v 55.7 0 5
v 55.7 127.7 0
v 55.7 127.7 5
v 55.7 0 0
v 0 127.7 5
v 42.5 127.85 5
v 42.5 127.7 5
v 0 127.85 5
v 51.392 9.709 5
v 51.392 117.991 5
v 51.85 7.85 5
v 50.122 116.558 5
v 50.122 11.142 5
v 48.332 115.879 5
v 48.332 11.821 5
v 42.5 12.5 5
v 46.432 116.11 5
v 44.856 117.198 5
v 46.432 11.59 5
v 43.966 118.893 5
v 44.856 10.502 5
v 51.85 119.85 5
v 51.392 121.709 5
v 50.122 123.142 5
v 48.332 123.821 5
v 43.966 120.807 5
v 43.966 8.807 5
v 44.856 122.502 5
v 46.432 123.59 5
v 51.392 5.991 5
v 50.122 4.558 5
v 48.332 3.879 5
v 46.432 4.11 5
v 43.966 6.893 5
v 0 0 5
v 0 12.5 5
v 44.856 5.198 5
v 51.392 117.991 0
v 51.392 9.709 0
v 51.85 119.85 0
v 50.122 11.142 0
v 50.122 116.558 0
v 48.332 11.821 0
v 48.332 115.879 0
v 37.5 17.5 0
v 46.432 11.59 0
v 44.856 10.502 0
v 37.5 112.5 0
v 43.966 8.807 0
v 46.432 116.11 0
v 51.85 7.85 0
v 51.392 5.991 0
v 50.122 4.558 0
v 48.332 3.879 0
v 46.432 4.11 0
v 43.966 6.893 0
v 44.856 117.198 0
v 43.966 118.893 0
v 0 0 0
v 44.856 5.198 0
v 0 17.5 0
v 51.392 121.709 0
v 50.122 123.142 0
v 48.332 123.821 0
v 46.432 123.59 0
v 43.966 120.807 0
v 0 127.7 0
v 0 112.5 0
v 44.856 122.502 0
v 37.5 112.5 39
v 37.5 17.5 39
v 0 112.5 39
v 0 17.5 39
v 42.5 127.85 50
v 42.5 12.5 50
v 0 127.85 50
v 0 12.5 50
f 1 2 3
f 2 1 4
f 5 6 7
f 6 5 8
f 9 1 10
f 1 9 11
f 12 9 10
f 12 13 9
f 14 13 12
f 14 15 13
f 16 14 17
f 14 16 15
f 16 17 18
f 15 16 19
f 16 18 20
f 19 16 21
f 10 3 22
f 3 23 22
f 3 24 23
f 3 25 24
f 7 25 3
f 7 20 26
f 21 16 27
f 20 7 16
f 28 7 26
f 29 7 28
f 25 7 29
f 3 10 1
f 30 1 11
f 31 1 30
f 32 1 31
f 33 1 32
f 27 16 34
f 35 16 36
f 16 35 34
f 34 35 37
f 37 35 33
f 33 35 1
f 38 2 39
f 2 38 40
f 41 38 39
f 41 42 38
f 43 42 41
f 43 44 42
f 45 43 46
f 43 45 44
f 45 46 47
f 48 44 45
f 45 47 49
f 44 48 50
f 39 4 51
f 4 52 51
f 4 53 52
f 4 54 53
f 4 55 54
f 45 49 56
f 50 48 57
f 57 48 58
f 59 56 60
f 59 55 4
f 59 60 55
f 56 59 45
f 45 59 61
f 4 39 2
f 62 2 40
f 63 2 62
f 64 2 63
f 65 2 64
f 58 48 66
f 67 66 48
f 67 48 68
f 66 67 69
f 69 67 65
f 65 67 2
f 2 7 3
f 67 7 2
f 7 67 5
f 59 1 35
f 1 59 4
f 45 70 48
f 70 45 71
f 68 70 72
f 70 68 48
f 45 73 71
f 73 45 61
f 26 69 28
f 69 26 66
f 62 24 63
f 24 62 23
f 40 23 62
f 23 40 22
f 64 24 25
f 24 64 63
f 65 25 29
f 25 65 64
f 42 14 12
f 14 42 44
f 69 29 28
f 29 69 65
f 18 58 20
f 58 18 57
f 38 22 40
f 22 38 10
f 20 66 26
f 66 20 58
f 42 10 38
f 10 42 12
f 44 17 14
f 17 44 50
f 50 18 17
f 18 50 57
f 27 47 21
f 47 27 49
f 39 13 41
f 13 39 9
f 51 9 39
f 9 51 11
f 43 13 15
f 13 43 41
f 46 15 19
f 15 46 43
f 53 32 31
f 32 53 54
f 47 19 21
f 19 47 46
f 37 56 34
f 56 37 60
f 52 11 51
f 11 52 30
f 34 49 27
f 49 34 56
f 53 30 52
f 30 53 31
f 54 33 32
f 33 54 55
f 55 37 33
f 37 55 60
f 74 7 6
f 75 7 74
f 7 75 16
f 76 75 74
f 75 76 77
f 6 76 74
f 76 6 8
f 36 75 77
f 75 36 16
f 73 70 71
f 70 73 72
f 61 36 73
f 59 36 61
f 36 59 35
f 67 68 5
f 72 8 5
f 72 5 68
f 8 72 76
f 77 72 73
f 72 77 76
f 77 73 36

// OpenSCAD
// file: 64x32 - 4mm pitch.scad
// Base plate
module case() {
    difference() {
        difference() {
            cube([255.70, 127.70, 5]);
            translate([17.5, 17.5, -1])
            cube([220, 95, 7]);
        }
        // Screw holes
        translate([7.85, 7.85, -1])
        cylinder(7, 4, 4);
        translate([7.85, 119.85, -1])
        cylinder(7, 4, 4);
        translate([127.85, 7.85, -1])
        cylinder(7, 4, 4);
        translate([247.85, 119.85, -1])
        cylinder(7, 4, 4);
        translate([247.85, 7.85, -1])
        cylinder(7, 4, 4);
    }

    // Box
    translate([12.5, 12.5, 5])
    difference() {
        difference() {
            cube([230, 115.35, 45]);
            translate([5, 5, -1])
            cube([220, 95, 35]);
        }

        // Mic stand screw hole
        translate([115, 116, 17])
        rotate([90, 0, 0])
        // Hole should be slightly too small, so thread can be melted in
        cylinder(16.1, 15, 15);
    }
}

case();
// main file
use <64x32 - 4mm pitch.scad>

module cut() {
    translate([200, -1, -1])
    cube([60, 130, 60]);
}

translate([-200, 0, 0])
intersection() {
    case();
    cut();
}
